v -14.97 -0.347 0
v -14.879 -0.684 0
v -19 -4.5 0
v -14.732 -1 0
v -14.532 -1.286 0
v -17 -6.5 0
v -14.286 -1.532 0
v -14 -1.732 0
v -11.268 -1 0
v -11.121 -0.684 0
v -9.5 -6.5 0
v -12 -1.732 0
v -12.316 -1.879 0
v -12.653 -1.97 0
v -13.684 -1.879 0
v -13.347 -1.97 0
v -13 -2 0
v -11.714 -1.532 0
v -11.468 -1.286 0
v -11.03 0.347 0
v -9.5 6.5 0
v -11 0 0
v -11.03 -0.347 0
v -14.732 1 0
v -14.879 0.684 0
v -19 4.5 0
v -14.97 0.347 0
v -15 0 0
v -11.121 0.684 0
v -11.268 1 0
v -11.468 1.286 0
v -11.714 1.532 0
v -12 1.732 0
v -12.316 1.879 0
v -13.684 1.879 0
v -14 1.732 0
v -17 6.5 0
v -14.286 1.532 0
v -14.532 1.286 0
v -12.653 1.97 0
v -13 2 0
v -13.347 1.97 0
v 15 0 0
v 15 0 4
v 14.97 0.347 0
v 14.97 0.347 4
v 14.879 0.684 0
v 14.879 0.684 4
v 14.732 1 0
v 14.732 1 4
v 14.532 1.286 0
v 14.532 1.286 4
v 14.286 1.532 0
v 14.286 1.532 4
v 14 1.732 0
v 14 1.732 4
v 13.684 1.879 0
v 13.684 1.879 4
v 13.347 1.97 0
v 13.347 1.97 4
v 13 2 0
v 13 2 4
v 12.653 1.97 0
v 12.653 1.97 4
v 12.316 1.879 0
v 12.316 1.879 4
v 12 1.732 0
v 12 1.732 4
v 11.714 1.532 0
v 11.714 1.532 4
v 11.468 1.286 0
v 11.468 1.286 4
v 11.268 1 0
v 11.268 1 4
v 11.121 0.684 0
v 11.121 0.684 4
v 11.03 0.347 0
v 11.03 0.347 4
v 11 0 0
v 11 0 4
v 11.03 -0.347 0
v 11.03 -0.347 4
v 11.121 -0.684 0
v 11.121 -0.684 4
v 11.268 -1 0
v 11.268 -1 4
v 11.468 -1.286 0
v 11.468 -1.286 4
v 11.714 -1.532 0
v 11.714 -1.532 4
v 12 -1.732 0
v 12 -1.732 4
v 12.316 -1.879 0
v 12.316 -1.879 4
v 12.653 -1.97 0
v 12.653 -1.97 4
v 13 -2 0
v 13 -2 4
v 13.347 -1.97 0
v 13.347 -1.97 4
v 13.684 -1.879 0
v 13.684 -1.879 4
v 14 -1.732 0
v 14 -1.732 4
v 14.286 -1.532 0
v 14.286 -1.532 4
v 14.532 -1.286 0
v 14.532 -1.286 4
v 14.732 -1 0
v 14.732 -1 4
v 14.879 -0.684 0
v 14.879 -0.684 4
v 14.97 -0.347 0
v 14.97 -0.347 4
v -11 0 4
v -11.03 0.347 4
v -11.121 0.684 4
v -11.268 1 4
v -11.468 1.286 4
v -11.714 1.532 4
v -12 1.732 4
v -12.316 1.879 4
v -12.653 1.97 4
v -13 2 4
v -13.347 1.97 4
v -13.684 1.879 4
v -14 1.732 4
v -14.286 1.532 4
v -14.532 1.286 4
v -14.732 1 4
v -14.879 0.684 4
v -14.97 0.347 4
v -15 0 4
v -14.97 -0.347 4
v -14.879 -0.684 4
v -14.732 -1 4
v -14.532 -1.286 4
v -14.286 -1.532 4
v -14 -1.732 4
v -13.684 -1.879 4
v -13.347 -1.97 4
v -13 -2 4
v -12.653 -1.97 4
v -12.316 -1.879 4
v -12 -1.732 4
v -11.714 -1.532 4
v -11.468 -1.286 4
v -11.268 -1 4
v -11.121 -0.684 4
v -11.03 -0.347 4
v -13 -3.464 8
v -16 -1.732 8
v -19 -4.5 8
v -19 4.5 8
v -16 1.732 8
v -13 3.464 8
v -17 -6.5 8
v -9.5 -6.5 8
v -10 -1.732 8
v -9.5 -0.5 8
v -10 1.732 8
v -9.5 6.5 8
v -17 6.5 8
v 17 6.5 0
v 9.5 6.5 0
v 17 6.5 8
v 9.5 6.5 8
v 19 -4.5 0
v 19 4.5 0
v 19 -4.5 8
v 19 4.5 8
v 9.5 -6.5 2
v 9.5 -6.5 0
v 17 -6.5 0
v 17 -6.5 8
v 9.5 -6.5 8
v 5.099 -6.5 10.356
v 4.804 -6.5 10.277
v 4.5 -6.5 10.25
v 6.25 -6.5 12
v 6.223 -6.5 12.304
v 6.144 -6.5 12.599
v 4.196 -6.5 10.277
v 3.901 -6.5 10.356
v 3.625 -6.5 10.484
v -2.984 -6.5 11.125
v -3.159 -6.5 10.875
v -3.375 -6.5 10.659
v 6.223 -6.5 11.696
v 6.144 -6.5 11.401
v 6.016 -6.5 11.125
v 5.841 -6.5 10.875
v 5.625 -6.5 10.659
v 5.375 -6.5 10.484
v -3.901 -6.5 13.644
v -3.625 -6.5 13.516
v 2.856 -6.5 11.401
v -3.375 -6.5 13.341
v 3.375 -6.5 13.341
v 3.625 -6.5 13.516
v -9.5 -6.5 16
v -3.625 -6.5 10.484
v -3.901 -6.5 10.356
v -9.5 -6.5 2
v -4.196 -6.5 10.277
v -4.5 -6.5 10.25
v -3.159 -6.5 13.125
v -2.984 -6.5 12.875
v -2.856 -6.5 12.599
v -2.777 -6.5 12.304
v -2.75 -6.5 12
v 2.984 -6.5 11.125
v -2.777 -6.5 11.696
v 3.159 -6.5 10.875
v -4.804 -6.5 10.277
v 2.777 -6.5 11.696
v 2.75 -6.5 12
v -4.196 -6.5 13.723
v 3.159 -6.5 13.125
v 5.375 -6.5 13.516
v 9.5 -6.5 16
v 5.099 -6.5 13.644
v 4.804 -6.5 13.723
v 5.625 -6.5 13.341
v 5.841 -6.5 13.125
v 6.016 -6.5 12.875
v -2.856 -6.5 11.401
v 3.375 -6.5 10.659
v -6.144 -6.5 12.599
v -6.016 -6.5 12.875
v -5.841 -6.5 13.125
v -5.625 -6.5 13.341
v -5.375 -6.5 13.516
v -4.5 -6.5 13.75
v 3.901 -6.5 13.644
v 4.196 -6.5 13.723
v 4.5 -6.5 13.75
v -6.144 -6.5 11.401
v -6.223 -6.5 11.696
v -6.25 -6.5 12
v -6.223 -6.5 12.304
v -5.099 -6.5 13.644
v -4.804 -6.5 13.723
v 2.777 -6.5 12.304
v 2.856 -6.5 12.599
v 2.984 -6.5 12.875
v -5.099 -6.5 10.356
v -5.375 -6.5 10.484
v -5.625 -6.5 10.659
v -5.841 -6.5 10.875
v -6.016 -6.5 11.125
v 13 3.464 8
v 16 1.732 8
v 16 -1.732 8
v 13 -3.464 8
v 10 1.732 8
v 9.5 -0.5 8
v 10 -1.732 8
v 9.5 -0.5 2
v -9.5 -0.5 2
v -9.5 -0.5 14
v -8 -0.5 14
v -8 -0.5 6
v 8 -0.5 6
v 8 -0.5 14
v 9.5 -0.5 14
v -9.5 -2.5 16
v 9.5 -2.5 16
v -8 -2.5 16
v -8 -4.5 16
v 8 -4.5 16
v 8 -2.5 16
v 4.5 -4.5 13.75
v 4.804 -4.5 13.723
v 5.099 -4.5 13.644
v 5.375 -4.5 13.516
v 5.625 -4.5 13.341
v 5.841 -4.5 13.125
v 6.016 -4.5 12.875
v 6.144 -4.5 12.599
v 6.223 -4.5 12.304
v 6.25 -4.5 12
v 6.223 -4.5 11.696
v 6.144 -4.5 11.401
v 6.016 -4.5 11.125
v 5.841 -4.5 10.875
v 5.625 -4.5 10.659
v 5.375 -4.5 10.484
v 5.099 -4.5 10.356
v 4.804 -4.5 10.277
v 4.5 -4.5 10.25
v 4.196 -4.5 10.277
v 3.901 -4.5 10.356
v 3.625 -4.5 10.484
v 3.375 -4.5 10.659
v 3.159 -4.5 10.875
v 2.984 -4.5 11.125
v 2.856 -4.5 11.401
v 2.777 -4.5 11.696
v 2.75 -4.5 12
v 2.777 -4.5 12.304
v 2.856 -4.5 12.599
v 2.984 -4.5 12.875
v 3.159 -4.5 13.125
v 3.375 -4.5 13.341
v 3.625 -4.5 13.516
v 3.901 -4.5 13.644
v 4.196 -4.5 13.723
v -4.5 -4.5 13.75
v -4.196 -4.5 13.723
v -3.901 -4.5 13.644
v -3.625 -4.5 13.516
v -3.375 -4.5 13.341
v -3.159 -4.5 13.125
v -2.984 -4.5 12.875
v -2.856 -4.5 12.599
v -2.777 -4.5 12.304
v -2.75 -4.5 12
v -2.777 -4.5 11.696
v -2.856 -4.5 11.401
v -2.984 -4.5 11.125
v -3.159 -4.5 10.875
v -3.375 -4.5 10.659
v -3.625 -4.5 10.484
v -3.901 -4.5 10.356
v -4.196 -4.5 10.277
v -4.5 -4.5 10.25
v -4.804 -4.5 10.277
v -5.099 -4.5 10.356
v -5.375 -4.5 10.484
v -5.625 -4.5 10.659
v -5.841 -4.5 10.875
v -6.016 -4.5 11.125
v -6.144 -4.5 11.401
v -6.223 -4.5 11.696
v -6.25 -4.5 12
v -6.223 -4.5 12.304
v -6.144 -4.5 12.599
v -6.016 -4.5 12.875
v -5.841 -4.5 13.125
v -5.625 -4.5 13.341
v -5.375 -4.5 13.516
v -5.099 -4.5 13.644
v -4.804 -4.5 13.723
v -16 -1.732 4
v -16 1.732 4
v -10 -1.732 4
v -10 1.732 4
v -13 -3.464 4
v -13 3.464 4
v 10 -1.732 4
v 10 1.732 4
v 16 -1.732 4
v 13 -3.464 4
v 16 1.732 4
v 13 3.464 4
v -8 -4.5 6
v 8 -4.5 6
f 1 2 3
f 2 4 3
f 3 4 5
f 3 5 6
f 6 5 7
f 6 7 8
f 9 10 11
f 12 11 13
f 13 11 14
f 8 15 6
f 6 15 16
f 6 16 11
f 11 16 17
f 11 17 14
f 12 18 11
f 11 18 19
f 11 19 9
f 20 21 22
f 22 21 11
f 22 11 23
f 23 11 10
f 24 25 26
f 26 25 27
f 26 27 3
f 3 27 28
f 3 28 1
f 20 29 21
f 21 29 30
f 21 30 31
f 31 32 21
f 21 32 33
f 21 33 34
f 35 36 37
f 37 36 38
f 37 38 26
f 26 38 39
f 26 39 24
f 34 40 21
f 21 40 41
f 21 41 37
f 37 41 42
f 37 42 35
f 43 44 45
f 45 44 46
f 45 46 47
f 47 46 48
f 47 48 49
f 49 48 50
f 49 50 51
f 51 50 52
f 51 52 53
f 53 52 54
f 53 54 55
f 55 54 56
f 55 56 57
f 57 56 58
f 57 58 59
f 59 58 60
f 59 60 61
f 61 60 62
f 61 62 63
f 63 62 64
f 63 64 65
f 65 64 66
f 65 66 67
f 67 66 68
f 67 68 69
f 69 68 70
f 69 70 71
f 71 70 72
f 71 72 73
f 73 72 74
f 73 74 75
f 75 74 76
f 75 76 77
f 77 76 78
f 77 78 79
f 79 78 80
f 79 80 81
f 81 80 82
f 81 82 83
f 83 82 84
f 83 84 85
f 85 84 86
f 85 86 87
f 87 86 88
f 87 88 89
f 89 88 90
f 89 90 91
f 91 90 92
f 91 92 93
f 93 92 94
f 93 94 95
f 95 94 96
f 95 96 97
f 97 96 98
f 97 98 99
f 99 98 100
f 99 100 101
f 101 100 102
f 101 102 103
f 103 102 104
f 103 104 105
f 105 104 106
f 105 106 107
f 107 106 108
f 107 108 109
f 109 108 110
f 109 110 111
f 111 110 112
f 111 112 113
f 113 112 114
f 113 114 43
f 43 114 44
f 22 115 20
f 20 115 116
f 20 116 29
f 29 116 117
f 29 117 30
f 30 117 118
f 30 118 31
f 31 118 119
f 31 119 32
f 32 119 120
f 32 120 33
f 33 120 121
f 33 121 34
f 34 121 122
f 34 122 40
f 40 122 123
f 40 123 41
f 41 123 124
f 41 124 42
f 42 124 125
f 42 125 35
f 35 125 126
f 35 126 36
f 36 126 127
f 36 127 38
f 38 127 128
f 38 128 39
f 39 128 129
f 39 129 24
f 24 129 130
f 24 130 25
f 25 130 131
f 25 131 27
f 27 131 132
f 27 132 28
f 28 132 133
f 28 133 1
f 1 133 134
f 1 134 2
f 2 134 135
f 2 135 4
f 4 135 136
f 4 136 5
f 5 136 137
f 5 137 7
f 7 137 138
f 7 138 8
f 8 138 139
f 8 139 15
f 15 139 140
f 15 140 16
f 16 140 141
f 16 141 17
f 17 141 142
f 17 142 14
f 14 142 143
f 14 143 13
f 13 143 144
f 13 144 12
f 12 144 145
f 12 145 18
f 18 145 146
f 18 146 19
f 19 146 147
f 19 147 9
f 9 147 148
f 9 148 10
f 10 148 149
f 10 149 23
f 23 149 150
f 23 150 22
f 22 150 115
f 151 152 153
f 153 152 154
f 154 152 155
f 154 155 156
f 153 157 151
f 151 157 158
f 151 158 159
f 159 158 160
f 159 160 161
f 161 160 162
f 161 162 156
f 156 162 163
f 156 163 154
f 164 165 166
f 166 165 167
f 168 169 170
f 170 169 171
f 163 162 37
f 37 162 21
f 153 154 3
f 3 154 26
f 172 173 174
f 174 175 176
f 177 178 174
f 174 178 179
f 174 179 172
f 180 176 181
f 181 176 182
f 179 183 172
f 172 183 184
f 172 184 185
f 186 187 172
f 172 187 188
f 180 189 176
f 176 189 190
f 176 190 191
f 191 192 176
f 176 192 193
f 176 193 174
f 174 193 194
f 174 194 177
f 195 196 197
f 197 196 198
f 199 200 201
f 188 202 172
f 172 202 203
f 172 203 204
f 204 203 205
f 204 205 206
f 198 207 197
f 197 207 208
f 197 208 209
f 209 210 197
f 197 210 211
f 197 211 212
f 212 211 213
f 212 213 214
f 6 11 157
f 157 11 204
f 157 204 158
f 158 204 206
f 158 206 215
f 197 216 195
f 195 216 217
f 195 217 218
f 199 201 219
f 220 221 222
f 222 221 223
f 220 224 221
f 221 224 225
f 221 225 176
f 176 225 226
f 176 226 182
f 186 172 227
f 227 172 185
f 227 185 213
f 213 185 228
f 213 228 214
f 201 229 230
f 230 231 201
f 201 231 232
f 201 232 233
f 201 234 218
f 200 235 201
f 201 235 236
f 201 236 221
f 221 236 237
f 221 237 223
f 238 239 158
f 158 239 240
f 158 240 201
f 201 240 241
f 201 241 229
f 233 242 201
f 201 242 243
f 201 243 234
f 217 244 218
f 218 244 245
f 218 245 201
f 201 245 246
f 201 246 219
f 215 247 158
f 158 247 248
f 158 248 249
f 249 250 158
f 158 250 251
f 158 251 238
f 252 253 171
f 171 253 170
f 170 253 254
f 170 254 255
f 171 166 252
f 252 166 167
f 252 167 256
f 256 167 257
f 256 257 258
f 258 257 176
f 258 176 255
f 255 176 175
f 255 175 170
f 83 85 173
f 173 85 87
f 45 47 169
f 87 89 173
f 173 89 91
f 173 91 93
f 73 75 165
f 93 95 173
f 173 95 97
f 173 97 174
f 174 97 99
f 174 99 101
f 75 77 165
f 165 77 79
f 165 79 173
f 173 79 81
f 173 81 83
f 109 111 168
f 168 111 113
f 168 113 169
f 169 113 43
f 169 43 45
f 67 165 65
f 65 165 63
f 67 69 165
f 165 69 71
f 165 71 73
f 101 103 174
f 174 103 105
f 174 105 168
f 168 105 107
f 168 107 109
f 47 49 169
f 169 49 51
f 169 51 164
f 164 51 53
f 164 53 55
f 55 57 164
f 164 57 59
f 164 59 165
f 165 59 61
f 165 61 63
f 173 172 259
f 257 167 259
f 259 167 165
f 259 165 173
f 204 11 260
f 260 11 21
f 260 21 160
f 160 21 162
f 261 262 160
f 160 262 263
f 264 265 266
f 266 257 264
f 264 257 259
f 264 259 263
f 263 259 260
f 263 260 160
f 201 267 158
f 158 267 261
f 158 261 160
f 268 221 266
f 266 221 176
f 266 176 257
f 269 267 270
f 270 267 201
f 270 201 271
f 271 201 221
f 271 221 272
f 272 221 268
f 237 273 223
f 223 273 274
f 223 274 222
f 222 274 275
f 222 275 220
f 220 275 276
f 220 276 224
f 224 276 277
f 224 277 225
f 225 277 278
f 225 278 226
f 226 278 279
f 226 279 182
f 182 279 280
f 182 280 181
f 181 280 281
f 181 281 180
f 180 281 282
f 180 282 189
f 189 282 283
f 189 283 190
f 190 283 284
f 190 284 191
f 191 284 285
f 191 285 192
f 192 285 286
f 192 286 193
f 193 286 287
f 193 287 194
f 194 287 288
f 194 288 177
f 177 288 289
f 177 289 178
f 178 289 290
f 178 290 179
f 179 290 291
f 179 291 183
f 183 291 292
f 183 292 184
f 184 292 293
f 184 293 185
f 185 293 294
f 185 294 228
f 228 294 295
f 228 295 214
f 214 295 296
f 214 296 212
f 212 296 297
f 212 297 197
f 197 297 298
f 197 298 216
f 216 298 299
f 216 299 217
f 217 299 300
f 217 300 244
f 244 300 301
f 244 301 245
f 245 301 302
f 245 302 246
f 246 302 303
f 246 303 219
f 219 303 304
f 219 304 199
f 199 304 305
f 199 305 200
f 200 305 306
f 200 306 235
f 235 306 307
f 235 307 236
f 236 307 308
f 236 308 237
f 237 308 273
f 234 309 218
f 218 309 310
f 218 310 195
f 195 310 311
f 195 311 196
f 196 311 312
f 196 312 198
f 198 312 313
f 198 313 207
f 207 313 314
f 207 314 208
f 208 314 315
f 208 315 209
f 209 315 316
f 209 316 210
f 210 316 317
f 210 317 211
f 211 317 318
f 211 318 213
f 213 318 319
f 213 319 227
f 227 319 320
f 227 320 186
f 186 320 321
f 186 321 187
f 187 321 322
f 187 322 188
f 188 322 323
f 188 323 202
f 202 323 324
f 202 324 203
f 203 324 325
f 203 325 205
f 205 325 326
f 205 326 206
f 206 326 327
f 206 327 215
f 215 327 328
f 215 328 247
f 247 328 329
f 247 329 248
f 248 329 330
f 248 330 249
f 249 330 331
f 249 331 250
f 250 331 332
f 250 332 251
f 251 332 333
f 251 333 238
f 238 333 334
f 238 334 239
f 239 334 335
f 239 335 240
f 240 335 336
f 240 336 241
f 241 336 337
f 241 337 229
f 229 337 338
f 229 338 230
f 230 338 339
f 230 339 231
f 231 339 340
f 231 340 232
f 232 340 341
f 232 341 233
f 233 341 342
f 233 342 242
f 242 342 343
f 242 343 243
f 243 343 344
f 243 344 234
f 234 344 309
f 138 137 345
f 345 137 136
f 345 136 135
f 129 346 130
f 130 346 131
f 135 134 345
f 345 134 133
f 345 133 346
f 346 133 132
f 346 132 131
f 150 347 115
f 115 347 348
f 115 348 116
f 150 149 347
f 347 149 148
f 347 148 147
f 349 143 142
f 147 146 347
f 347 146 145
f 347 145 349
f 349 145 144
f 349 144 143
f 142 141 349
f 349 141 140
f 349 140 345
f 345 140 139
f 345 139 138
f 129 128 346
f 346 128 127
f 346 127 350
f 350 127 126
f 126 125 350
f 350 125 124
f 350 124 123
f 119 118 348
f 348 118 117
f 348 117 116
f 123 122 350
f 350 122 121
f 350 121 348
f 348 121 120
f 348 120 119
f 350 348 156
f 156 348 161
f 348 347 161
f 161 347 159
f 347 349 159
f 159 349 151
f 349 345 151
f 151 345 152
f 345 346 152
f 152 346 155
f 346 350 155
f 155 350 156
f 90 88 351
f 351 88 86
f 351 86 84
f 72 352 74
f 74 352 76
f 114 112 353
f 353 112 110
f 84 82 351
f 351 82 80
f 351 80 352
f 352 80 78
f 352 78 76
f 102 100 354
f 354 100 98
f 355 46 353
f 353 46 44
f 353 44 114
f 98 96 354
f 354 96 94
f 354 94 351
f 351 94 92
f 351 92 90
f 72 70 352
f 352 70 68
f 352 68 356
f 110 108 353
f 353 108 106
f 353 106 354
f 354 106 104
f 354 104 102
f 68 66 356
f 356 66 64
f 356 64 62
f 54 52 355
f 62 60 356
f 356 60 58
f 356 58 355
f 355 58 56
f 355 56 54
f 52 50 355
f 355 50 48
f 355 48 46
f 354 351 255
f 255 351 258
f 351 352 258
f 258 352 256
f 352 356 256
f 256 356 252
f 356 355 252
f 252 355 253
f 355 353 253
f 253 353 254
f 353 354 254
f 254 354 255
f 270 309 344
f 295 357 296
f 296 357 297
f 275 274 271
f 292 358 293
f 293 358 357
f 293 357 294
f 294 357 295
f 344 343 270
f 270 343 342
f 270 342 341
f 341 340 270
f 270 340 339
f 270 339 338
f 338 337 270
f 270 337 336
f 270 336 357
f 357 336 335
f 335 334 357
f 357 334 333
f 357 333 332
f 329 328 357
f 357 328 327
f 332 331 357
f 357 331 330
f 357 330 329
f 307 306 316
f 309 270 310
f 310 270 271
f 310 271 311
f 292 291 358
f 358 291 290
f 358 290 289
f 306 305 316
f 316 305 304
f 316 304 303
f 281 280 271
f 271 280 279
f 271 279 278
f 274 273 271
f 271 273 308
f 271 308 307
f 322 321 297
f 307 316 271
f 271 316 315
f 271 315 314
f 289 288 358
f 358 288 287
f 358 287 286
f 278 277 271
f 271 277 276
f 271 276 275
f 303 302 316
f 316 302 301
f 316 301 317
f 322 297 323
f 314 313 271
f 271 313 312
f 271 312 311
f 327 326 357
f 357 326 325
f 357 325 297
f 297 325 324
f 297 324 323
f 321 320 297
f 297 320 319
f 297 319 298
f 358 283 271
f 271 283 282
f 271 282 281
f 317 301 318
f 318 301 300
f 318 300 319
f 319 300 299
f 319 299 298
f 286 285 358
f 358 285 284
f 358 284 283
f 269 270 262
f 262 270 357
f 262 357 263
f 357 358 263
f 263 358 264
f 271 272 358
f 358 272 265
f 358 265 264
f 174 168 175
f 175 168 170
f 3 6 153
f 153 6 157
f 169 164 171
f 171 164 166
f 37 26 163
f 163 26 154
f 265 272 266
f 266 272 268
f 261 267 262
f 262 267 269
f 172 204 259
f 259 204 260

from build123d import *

# Parameters (mm, degrees)
SKETCH1_W           = 38
SKETCH1_H           = 13
BOSS_EXTRUDE1_DEPTH = 8
SKETCH2_W           = 19
SKETCH2_H           = 14
CUT_EXTRUDE1_DEPTH  = 9
SKETCH3_R           = 2
CUT_EXTRUDE2_DEPTH  = 9
SKETCH4_W           = 19
SKETCH4_H           = 6
BOSS_EXTRUDE2_DEPTH = 8
SKETCH5_R           = 1.75
CUT_EXTRUDE3_DEPTH  = 7
CUT_EXTRUDE4_DEPTH  = 4
SKETCH7_W           = 16
SKETCH7_H           = 10
CUT_EXTRUDE5_DEPTH  = 4
CHAMFER1_SIZE       = 2
SKETCH8_W           = 19
SKETCH8_H           = 2
CUT_EXTRUDE6_DEPTH  = 7


with BuildPart() as part:
    # Sketch1 → Boss-Extrude1 (new body)
    with BuildSketch(Plane.XY):
        Rectangle(SKETCH1_W, SKETCH1_H)
    extrude(amount=BOSS_EXTRUDE1_DEPTH)

    # Sketch2 → Cut-Extrude1 (cut, through all)
    with BuildSketch(Plane.XY.offset(8)):
        with Locations((0, 6.5)):
            Rectangle(SKETCH2_W, SKETCH2_H)
    extrude(amount=-CUT_EXTRUDE1_DEPTH, mode=Mode.SUBTRACT)

    # Sketch3 → Cut-Extrude2 (cut, through all)
    with BuildSketch(Plane.XY.offset(8)):
        with Locations((-13, 0)):
            Circle(SKETCH3_R)
        with Locations((13, 0)):
            Circle(SKETCH3_R)
    extrude(amount=-CUT_EXTRUDE2_DEPTH, mode=Mode.SUBTRACT)

    # Sketch4 → Boss-Extrude2 (add)
    with BuildSketch(Plane.XY.offset(8)):
        with Locations((0, -3.5)):
            Rectangle(SKETCH4_W, SKETCH4_H)
    extrude(amount=BOSS_EXTRUDE2_DEPTH)

    # Sketch5 → Cut-Extrude3 (cut, through all)
    with BuildSketch(Plane(origin=(0, -0.5, 0), x_dir=(1, 0, 0), z_dir=(0, 1, 0))):
        with Locations((-4.5, -12)):
            Circle(SKETCH5_R)
        with Locations((4.5, -12)):
            Circle(SKETCH5_R)
    extrude(amount=-CUT_EXTRUDE3_DEPTH, mode=Mode.SUBTRACT)

    # Sketch6 → Cut-Extrude4 (cut)
    with BuildSketch(Plane.XY.offset(8)):
        Polygon((-13, 3.464101615), (-16, 1.732050808), (-16, -1.732050808), (-13, -3.464101615), (-10, -1.732050808), (-10, 1.732050808), align=None)
        Polygon((13, -3.464101615), (16, -1.732050808), (16, 1.732050808), (13, 3.464101615), (10, 1.732050808), (10, -1.732050808), align=None)
    extrude(amount=-CUT_EXTRUDE4_DEPTH, mode=Mode.SUBTRACT)

    # Sketch7 → Cut-Extrude5 (cut)
    with BuildSketch(Plane(origin=(0, -0.5, 0), x_dir=(1, 0, 0), z_dir=(0, 1, 0))):
        with Locations((0, -11)):
            Rectangle(SKETCH7_W, SKETCH7_H)
    extrude(amount=-CUT_EXTRUDE5_DEPTH, mode=Mode.SUBTRACT)

    # Chamfer1
    chamfer1_edges = [part.edges().sort_by_distance(p)[0] for p in [
        (-8.75, -0.5, 16),
        (8.75, -0.5, 16),
        (19, -6.5, 4),
        (-19, -6.5, 4),
        (-19, 6.5, 4),
        (19, 6.5, 4),
    ]]
    chamfer(chamfer1_edges, length=CHAMFER1_SIZE)

    # Sketch8 → Cut-Extrude6 (cut, through all)
    with BuildSketch(Plane(origin=(0, -0.5, 0), x_dir=(1, 0, 0), z_dir=(0, 1, 0))):
        with Locations((0, -1)):
            Rectangle(SKETCH8_W, SKETCH8_H)
    extrude(amount=-CUT_EXTRUDE6_DEPTH, mode=Mode.SUBTRACT)


solid = part.part
